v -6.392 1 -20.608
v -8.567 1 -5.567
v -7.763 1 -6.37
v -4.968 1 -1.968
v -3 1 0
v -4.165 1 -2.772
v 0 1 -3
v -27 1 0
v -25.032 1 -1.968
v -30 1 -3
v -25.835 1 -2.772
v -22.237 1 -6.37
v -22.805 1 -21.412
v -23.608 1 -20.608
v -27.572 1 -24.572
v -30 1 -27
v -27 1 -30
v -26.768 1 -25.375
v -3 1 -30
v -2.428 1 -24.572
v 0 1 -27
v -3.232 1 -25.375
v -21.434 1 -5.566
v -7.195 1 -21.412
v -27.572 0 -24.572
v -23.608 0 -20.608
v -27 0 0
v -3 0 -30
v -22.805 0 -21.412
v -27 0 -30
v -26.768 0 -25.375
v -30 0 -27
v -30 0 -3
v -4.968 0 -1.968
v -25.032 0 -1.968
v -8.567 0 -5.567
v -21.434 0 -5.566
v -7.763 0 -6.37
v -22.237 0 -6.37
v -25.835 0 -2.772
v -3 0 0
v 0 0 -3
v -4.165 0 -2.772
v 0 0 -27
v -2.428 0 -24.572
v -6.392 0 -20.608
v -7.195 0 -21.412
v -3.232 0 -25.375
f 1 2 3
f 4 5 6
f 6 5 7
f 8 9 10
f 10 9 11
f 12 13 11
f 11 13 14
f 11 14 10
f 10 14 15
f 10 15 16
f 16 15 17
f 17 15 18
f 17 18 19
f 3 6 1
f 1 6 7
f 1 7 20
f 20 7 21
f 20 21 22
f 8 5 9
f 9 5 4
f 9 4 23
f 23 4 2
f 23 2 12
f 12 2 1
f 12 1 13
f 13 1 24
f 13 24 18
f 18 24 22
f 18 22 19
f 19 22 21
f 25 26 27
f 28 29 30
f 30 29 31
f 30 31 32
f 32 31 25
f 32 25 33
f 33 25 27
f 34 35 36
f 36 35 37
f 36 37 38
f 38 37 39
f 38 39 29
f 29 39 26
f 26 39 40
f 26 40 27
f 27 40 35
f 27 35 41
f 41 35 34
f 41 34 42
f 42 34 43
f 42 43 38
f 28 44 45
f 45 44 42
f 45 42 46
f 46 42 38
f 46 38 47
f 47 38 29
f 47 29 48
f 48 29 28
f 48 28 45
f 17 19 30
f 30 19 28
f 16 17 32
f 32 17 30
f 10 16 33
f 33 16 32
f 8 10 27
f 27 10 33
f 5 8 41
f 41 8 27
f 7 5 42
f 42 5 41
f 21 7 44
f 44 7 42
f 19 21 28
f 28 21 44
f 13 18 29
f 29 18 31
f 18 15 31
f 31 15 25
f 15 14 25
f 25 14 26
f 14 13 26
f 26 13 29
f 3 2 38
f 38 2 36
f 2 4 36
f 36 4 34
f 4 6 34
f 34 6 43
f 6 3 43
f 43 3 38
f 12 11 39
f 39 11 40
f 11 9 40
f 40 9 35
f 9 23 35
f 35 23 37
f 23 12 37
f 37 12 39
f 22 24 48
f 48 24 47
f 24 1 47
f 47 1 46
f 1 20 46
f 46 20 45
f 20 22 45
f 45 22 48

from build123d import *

# Parameters (mm, degrees)
EXTRUDE_1_DEPTH     = 1
CUT_EXTRUDE_1_DEPTH = 1


with BuildPart() as part:
    # 草图1 → 凸台-拉伸1 (new body)
    with BuildSketch(Plane(origin=(0, 0, 0), x_dir=(1, 0, 0), z_dir=(0, 1, 0))):
        Polygon((-27, 30), (-30, 27), (-30, 3), (-27, 0), (-3, 0), (0, 3), (0, 27), (-3, 30), align=None)
    extrude(amount=EXTRUDE_1_DEPTH)

    # 草图2 → 切除-拉伸1 (cut)
    with BuildSketch(Plane(origin=(0, 0, 0), x_dir=(1, 0, 0), z_dir=(0, 1, 0))):
        Polygon((-26.768491702, 25.375210501), (-27.571851102, 24.571851102), (-23.608439528, 20.608439528), (-22.805080129, 21.411798927), align=None)
        Polygon((-3.231508298, 25.375210501), (-2.428148898, 24.571851102), (-6.391560472, 20.608439528), (-7.194919871, 21.411798927), align=None)
        Polygon((-25.835128567, 2.771590231), (-25.031769168, 1.968230832), (-21.433586648, 5.566413352), (-22.236946047, 6.369772752), align=None)
        Polygon((-4.968230832, 1.968230832), (-4.164871433, 2.771590231), (-7.763215817, 6.369934615), (-8.566575216, 5.566575216), align=None)
    extrude(amount=CUT_EXTRUDE_1_DEPTH, mode=Mode.SUBTRACT)


solid = part.part
